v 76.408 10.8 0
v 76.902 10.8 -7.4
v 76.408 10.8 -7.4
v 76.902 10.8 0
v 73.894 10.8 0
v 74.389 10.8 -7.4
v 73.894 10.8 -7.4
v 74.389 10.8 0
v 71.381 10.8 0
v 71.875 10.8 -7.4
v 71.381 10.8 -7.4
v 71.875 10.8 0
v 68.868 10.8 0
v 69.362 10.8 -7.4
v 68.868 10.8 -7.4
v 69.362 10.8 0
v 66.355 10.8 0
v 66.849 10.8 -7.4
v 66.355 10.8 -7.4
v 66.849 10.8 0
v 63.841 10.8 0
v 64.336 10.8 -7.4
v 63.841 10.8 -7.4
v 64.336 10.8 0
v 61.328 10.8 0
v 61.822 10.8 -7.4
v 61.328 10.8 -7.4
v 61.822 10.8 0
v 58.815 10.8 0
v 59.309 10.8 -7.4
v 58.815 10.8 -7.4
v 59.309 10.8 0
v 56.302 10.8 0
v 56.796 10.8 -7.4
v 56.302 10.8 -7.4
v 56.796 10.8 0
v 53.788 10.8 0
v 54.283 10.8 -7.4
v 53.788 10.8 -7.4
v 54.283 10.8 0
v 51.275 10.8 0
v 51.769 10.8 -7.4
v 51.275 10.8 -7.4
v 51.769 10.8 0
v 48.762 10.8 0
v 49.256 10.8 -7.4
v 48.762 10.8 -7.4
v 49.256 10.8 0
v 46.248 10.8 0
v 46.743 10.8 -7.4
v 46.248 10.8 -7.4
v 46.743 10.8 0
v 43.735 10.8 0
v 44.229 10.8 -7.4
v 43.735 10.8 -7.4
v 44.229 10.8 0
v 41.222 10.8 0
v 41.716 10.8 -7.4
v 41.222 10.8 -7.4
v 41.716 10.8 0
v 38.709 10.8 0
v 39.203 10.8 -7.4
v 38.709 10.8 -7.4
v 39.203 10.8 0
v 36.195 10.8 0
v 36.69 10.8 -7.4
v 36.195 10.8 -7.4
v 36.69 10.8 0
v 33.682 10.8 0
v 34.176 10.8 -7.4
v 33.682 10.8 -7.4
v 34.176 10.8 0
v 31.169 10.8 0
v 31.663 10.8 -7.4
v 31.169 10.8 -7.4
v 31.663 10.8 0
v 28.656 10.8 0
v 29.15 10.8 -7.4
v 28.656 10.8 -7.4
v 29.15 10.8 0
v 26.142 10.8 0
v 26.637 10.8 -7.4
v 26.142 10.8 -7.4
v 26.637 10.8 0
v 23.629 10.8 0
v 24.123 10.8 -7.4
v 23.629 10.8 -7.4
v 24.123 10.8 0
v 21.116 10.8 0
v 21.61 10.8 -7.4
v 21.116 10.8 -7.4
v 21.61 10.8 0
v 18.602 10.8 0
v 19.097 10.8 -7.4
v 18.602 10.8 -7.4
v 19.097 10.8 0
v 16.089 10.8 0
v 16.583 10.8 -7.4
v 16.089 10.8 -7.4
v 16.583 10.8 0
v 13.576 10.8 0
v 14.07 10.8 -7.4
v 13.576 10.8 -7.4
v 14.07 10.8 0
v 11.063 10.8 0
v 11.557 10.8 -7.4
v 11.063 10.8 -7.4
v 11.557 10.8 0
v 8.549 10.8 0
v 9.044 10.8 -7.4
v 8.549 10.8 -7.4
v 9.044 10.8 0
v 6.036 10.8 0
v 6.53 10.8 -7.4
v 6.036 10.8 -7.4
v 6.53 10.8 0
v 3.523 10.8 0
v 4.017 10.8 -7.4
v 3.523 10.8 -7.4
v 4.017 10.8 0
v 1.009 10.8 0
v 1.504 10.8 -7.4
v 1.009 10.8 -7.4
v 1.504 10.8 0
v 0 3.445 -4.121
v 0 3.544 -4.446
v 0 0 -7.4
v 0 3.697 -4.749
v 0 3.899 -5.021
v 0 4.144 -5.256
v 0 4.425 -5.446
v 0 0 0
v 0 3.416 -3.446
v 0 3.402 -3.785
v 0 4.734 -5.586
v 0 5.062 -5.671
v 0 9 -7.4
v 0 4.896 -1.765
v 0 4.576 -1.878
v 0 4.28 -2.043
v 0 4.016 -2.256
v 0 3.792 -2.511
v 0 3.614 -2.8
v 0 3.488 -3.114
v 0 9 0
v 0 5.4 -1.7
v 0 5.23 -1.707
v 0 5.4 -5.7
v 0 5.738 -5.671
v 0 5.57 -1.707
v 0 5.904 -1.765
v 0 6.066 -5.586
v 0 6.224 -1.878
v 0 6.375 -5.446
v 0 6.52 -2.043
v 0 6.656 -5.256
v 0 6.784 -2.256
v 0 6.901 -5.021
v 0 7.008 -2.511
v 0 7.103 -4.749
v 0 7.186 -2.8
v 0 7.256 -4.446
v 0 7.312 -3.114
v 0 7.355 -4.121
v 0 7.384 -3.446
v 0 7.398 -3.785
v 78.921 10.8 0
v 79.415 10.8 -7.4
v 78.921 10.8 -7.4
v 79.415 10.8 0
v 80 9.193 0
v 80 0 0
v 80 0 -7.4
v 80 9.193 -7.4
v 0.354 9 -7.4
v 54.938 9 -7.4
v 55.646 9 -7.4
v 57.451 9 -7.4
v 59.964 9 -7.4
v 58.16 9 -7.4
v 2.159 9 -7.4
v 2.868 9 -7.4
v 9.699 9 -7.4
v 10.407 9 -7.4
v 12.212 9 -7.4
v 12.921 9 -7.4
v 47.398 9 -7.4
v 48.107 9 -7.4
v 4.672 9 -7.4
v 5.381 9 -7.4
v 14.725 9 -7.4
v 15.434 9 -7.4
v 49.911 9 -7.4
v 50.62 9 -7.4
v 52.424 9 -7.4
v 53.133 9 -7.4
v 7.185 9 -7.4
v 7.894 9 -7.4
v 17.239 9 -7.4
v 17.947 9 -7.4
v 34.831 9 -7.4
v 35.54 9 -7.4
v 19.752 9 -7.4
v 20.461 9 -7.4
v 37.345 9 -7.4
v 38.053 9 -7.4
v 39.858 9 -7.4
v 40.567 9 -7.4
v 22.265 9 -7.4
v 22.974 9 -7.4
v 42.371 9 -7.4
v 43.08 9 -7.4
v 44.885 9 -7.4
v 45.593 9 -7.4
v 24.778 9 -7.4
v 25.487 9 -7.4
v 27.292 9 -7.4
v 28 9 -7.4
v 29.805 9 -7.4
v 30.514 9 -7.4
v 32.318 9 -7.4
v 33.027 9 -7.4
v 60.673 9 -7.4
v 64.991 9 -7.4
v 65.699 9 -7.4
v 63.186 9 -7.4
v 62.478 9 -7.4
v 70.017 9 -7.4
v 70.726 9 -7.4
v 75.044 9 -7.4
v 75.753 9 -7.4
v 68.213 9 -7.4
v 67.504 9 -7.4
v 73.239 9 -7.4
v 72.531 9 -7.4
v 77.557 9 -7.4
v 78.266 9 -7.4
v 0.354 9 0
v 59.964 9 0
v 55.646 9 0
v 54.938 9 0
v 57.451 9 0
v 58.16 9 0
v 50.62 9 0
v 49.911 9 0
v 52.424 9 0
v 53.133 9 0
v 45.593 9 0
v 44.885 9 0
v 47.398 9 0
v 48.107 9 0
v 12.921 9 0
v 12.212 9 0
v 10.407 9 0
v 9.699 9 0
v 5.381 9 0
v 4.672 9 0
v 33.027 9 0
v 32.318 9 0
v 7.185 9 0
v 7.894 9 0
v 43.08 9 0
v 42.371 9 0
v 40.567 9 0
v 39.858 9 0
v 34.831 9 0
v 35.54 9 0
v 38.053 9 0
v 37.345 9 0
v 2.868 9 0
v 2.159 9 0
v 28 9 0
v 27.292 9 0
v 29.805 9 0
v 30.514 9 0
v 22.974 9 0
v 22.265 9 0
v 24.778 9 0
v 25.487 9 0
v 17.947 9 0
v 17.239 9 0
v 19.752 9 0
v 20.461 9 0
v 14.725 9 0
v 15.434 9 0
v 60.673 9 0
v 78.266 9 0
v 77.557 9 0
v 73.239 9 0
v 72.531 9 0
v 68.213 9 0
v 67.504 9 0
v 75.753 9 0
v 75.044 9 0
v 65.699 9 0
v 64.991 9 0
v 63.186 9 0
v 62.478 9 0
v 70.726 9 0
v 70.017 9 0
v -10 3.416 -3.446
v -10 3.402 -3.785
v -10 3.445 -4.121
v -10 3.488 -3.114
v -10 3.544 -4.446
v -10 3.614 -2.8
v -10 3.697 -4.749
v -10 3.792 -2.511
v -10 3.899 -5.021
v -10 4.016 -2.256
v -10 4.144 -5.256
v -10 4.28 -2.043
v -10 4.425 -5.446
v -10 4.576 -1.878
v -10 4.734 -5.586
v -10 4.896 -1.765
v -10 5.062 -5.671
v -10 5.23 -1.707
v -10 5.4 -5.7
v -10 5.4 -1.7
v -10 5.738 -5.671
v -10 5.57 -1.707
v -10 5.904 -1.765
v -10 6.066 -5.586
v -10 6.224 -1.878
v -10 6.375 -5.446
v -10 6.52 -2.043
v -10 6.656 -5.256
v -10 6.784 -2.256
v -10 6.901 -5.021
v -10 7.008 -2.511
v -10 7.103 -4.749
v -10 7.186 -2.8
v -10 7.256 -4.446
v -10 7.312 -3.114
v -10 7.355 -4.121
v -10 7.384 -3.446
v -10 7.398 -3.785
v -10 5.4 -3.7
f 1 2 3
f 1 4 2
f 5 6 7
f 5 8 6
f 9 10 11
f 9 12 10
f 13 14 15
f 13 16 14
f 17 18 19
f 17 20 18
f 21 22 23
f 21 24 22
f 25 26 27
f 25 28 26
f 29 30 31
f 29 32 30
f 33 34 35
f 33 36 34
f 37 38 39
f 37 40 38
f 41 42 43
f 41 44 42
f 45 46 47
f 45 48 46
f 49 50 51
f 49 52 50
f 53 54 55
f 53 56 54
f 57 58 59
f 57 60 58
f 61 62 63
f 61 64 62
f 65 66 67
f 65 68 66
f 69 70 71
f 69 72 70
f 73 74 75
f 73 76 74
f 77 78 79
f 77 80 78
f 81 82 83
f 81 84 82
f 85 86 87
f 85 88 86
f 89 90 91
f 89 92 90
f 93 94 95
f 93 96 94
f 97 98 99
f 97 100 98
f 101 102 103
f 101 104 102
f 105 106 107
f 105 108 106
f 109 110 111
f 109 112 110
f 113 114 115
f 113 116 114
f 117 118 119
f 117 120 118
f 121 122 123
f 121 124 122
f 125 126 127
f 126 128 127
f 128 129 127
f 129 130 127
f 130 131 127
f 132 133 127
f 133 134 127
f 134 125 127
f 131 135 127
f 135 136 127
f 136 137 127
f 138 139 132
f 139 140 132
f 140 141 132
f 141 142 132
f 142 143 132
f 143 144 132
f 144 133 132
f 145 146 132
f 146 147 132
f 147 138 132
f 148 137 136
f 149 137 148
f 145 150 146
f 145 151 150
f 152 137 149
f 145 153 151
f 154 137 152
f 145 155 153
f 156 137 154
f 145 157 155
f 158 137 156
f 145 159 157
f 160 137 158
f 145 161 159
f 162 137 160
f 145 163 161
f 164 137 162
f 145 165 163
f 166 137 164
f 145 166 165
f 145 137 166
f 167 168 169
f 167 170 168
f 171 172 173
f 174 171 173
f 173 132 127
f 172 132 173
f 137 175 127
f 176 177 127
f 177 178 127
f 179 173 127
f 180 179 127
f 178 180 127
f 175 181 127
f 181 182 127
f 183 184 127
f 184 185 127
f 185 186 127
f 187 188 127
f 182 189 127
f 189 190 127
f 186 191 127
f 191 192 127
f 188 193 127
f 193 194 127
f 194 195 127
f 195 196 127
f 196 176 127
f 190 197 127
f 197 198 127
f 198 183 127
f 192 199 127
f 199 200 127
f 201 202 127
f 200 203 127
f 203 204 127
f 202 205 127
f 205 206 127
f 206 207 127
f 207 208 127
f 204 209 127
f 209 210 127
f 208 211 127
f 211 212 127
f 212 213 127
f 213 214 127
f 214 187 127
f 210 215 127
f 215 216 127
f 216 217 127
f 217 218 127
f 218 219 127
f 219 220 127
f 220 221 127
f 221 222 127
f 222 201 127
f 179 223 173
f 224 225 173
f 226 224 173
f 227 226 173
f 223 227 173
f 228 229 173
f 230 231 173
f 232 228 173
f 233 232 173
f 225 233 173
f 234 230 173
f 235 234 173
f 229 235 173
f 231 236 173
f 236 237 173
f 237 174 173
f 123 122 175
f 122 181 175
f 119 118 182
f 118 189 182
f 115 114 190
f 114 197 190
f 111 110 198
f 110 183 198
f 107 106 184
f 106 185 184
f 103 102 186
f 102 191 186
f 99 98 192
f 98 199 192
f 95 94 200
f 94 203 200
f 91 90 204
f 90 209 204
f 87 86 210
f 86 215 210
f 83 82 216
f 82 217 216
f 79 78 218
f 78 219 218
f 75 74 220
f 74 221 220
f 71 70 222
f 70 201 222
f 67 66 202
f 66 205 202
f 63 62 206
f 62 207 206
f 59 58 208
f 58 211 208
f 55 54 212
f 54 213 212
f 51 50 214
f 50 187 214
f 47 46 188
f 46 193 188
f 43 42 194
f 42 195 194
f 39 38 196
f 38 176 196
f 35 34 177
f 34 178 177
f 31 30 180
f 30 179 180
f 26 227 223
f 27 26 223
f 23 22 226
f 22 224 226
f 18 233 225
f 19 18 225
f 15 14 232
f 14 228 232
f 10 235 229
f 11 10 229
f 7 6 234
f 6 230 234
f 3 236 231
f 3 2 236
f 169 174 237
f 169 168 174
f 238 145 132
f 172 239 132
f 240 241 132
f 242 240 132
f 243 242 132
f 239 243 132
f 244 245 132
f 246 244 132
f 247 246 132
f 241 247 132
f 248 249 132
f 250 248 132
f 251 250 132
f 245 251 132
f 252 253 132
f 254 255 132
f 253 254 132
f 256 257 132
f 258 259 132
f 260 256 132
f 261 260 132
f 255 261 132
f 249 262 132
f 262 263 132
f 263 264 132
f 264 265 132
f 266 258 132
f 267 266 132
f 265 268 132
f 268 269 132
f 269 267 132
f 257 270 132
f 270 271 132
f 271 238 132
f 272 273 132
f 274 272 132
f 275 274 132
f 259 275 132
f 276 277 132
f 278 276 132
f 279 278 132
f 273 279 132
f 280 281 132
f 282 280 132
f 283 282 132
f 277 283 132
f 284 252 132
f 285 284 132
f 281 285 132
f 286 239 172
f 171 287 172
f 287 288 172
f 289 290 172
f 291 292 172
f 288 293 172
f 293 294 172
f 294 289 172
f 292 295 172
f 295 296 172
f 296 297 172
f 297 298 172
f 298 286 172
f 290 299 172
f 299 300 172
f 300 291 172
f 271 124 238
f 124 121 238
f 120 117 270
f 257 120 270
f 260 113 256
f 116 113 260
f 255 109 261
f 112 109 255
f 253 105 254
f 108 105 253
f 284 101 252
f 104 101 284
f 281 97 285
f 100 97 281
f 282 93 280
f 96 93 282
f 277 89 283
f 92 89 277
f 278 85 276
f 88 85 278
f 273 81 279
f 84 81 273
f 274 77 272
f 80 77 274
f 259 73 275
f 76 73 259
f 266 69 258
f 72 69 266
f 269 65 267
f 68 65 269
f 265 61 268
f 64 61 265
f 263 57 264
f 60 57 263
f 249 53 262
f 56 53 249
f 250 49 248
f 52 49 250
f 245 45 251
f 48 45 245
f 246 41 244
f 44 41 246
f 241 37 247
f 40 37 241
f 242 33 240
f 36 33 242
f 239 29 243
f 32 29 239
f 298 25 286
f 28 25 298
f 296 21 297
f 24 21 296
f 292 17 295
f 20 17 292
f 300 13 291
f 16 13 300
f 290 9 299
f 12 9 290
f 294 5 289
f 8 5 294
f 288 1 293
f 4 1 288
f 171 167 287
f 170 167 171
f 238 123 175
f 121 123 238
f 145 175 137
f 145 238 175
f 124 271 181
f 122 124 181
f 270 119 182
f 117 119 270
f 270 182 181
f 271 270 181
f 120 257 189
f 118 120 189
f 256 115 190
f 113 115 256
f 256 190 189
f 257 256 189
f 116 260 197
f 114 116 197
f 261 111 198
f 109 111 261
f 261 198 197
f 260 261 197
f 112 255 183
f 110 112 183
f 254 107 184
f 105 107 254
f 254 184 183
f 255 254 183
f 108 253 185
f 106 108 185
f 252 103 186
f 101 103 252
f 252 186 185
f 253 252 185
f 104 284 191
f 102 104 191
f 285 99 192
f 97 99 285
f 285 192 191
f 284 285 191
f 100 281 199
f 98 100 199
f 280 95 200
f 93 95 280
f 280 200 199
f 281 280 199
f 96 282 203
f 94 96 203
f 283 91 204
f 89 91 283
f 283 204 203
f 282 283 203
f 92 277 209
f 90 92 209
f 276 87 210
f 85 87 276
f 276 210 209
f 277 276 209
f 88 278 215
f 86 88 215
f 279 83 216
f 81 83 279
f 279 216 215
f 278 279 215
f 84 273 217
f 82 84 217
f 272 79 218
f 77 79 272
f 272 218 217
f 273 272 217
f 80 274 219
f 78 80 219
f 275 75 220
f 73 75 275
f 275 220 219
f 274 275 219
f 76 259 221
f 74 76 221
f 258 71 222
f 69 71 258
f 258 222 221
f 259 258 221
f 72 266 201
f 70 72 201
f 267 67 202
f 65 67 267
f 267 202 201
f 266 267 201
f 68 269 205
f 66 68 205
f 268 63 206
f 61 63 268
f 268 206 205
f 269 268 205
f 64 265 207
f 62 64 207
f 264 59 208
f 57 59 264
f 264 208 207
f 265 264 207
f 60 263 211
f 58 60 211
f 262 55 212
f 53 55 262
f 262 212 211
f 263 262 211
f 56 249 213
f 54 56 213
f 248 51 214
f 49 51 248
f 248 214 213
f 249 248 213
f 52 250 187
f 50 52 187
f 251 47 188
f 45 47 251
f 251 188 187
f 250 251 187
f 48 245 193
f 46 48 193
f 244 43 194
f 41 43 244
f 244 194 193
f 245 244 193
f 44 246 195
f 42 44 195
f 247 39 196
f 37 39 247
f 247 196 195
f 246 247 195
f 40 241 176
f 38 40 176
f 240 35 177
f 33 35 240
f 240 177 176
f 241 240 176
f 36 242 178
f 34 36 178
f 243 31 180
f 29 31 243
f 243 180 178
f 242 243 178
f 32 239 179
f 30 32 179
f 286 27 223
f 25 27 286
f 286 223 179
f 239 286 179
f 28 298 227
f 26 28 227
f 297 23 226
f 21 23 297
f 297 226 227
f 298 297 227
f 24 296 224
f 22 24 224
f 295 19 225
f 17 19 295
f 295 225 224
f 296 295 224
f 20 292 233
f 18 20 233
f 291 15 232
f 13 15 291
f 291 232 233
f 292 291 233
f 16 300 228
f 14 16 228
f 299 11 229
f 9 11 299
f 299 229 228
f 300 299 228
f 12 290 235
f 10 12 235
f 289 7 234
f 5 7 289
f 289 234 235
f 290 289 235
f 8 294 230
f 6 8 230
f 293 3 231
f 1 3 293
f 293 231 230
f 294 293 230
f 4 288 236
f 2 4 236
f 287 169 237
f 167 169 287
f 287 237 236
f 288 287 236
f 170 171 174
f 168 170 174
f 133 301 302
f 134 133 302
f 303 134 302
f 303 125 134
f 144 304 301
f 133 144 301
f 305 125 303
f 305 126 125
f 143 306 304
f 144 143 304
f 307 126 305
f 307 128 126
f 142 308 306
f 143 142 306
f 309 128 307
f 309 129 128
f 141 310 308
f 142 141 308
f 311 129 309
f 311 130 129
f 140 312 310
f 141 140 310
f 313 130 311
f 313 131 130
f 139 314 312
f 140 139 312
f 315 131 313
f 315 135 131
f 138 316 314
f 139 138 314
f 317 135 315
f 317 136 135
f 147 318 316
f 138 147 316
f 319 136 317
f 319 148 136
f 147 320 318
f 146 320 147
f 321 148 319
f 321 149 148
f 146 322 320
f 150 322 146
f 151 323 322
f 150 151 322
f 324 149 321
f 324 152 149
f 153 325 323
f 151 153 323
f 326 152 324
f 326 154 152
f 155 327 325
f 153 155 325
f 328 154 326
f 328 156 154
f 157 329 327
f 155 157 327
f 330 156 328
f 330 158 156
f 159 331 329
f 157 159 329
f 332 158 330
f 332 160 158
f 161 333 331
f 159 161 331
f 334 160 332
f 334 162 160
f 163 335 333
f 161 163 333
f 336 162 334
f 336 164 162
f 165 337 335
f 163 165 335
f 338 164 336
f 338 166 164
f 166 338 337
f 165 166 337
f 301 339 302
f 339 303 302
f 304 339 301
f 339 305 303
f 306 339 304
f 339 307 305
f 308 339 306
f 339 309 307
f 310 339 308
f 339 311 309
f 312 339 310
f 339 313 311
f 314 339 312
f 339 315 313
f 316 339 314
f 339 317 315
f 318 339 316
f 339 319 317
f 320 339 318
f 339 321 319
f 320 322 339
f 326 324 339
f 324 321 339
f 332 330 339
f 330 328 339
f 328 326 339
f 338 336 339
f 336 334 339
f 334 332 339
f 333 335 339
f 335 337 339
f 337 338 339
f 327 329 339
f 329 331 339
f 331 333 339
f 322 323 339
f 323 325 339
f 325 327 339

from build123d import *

# Parameters (mm, degrees)
BLANKSKE_W        = 80
BLANKSKE_H        = 10.8
BLANK_DEPTH       = 7.4
TOOTHCUTSIM_DEPTH = 82.064172111
TEETHCUTS_COUNT   = 33
TEETHCUTS_PITCH   = 2.51327412
SKETCH_1_R        = 2
EXTRUDE_1_DEPTH   = 10


with BuildPart() as part:
    # BlankSke → Blank (new body)
    with BuildSketch(Plane.XY):
        with Locations((40, 5.4)):
            Rectangle(BLANKSKE_W, BLANKSKE_H)
    extrude(amount=-BLANK_DEPTH)

    # TooCutSkeSim → ToothCutSim (cut, through all)
    with BuildSketch(Plane.XY):
        Polygon((0.354348296, 9), (-0.354348296, 9), (-1.018739561, 10.8254), (1.018739561, 10.8254), align=None)
    toothcutsim = extrude(amount=-TOOTHCUTSIM_DEPTH, mode=Mode.SUBTRACT)

    # TeethCuts: ToothCutSim ×33
    with Locations(*[(i * TEETHCUTS_PITCH, 0, 0) for i in range(1, TEETHCUTS_COUNT)]):
        add(toothcutsim, mode=Mode.SUBTRACT)

    # 草图1 → 凸台-拉伸1 (add)
    with BuildSketch(Plane.ZY):
        with Locations((-3.7, 5.4)):
            Circle(SKETCH_1_R)
    extrude(amount=EXTRUDE_1_DEPTH)


solid = part.part
